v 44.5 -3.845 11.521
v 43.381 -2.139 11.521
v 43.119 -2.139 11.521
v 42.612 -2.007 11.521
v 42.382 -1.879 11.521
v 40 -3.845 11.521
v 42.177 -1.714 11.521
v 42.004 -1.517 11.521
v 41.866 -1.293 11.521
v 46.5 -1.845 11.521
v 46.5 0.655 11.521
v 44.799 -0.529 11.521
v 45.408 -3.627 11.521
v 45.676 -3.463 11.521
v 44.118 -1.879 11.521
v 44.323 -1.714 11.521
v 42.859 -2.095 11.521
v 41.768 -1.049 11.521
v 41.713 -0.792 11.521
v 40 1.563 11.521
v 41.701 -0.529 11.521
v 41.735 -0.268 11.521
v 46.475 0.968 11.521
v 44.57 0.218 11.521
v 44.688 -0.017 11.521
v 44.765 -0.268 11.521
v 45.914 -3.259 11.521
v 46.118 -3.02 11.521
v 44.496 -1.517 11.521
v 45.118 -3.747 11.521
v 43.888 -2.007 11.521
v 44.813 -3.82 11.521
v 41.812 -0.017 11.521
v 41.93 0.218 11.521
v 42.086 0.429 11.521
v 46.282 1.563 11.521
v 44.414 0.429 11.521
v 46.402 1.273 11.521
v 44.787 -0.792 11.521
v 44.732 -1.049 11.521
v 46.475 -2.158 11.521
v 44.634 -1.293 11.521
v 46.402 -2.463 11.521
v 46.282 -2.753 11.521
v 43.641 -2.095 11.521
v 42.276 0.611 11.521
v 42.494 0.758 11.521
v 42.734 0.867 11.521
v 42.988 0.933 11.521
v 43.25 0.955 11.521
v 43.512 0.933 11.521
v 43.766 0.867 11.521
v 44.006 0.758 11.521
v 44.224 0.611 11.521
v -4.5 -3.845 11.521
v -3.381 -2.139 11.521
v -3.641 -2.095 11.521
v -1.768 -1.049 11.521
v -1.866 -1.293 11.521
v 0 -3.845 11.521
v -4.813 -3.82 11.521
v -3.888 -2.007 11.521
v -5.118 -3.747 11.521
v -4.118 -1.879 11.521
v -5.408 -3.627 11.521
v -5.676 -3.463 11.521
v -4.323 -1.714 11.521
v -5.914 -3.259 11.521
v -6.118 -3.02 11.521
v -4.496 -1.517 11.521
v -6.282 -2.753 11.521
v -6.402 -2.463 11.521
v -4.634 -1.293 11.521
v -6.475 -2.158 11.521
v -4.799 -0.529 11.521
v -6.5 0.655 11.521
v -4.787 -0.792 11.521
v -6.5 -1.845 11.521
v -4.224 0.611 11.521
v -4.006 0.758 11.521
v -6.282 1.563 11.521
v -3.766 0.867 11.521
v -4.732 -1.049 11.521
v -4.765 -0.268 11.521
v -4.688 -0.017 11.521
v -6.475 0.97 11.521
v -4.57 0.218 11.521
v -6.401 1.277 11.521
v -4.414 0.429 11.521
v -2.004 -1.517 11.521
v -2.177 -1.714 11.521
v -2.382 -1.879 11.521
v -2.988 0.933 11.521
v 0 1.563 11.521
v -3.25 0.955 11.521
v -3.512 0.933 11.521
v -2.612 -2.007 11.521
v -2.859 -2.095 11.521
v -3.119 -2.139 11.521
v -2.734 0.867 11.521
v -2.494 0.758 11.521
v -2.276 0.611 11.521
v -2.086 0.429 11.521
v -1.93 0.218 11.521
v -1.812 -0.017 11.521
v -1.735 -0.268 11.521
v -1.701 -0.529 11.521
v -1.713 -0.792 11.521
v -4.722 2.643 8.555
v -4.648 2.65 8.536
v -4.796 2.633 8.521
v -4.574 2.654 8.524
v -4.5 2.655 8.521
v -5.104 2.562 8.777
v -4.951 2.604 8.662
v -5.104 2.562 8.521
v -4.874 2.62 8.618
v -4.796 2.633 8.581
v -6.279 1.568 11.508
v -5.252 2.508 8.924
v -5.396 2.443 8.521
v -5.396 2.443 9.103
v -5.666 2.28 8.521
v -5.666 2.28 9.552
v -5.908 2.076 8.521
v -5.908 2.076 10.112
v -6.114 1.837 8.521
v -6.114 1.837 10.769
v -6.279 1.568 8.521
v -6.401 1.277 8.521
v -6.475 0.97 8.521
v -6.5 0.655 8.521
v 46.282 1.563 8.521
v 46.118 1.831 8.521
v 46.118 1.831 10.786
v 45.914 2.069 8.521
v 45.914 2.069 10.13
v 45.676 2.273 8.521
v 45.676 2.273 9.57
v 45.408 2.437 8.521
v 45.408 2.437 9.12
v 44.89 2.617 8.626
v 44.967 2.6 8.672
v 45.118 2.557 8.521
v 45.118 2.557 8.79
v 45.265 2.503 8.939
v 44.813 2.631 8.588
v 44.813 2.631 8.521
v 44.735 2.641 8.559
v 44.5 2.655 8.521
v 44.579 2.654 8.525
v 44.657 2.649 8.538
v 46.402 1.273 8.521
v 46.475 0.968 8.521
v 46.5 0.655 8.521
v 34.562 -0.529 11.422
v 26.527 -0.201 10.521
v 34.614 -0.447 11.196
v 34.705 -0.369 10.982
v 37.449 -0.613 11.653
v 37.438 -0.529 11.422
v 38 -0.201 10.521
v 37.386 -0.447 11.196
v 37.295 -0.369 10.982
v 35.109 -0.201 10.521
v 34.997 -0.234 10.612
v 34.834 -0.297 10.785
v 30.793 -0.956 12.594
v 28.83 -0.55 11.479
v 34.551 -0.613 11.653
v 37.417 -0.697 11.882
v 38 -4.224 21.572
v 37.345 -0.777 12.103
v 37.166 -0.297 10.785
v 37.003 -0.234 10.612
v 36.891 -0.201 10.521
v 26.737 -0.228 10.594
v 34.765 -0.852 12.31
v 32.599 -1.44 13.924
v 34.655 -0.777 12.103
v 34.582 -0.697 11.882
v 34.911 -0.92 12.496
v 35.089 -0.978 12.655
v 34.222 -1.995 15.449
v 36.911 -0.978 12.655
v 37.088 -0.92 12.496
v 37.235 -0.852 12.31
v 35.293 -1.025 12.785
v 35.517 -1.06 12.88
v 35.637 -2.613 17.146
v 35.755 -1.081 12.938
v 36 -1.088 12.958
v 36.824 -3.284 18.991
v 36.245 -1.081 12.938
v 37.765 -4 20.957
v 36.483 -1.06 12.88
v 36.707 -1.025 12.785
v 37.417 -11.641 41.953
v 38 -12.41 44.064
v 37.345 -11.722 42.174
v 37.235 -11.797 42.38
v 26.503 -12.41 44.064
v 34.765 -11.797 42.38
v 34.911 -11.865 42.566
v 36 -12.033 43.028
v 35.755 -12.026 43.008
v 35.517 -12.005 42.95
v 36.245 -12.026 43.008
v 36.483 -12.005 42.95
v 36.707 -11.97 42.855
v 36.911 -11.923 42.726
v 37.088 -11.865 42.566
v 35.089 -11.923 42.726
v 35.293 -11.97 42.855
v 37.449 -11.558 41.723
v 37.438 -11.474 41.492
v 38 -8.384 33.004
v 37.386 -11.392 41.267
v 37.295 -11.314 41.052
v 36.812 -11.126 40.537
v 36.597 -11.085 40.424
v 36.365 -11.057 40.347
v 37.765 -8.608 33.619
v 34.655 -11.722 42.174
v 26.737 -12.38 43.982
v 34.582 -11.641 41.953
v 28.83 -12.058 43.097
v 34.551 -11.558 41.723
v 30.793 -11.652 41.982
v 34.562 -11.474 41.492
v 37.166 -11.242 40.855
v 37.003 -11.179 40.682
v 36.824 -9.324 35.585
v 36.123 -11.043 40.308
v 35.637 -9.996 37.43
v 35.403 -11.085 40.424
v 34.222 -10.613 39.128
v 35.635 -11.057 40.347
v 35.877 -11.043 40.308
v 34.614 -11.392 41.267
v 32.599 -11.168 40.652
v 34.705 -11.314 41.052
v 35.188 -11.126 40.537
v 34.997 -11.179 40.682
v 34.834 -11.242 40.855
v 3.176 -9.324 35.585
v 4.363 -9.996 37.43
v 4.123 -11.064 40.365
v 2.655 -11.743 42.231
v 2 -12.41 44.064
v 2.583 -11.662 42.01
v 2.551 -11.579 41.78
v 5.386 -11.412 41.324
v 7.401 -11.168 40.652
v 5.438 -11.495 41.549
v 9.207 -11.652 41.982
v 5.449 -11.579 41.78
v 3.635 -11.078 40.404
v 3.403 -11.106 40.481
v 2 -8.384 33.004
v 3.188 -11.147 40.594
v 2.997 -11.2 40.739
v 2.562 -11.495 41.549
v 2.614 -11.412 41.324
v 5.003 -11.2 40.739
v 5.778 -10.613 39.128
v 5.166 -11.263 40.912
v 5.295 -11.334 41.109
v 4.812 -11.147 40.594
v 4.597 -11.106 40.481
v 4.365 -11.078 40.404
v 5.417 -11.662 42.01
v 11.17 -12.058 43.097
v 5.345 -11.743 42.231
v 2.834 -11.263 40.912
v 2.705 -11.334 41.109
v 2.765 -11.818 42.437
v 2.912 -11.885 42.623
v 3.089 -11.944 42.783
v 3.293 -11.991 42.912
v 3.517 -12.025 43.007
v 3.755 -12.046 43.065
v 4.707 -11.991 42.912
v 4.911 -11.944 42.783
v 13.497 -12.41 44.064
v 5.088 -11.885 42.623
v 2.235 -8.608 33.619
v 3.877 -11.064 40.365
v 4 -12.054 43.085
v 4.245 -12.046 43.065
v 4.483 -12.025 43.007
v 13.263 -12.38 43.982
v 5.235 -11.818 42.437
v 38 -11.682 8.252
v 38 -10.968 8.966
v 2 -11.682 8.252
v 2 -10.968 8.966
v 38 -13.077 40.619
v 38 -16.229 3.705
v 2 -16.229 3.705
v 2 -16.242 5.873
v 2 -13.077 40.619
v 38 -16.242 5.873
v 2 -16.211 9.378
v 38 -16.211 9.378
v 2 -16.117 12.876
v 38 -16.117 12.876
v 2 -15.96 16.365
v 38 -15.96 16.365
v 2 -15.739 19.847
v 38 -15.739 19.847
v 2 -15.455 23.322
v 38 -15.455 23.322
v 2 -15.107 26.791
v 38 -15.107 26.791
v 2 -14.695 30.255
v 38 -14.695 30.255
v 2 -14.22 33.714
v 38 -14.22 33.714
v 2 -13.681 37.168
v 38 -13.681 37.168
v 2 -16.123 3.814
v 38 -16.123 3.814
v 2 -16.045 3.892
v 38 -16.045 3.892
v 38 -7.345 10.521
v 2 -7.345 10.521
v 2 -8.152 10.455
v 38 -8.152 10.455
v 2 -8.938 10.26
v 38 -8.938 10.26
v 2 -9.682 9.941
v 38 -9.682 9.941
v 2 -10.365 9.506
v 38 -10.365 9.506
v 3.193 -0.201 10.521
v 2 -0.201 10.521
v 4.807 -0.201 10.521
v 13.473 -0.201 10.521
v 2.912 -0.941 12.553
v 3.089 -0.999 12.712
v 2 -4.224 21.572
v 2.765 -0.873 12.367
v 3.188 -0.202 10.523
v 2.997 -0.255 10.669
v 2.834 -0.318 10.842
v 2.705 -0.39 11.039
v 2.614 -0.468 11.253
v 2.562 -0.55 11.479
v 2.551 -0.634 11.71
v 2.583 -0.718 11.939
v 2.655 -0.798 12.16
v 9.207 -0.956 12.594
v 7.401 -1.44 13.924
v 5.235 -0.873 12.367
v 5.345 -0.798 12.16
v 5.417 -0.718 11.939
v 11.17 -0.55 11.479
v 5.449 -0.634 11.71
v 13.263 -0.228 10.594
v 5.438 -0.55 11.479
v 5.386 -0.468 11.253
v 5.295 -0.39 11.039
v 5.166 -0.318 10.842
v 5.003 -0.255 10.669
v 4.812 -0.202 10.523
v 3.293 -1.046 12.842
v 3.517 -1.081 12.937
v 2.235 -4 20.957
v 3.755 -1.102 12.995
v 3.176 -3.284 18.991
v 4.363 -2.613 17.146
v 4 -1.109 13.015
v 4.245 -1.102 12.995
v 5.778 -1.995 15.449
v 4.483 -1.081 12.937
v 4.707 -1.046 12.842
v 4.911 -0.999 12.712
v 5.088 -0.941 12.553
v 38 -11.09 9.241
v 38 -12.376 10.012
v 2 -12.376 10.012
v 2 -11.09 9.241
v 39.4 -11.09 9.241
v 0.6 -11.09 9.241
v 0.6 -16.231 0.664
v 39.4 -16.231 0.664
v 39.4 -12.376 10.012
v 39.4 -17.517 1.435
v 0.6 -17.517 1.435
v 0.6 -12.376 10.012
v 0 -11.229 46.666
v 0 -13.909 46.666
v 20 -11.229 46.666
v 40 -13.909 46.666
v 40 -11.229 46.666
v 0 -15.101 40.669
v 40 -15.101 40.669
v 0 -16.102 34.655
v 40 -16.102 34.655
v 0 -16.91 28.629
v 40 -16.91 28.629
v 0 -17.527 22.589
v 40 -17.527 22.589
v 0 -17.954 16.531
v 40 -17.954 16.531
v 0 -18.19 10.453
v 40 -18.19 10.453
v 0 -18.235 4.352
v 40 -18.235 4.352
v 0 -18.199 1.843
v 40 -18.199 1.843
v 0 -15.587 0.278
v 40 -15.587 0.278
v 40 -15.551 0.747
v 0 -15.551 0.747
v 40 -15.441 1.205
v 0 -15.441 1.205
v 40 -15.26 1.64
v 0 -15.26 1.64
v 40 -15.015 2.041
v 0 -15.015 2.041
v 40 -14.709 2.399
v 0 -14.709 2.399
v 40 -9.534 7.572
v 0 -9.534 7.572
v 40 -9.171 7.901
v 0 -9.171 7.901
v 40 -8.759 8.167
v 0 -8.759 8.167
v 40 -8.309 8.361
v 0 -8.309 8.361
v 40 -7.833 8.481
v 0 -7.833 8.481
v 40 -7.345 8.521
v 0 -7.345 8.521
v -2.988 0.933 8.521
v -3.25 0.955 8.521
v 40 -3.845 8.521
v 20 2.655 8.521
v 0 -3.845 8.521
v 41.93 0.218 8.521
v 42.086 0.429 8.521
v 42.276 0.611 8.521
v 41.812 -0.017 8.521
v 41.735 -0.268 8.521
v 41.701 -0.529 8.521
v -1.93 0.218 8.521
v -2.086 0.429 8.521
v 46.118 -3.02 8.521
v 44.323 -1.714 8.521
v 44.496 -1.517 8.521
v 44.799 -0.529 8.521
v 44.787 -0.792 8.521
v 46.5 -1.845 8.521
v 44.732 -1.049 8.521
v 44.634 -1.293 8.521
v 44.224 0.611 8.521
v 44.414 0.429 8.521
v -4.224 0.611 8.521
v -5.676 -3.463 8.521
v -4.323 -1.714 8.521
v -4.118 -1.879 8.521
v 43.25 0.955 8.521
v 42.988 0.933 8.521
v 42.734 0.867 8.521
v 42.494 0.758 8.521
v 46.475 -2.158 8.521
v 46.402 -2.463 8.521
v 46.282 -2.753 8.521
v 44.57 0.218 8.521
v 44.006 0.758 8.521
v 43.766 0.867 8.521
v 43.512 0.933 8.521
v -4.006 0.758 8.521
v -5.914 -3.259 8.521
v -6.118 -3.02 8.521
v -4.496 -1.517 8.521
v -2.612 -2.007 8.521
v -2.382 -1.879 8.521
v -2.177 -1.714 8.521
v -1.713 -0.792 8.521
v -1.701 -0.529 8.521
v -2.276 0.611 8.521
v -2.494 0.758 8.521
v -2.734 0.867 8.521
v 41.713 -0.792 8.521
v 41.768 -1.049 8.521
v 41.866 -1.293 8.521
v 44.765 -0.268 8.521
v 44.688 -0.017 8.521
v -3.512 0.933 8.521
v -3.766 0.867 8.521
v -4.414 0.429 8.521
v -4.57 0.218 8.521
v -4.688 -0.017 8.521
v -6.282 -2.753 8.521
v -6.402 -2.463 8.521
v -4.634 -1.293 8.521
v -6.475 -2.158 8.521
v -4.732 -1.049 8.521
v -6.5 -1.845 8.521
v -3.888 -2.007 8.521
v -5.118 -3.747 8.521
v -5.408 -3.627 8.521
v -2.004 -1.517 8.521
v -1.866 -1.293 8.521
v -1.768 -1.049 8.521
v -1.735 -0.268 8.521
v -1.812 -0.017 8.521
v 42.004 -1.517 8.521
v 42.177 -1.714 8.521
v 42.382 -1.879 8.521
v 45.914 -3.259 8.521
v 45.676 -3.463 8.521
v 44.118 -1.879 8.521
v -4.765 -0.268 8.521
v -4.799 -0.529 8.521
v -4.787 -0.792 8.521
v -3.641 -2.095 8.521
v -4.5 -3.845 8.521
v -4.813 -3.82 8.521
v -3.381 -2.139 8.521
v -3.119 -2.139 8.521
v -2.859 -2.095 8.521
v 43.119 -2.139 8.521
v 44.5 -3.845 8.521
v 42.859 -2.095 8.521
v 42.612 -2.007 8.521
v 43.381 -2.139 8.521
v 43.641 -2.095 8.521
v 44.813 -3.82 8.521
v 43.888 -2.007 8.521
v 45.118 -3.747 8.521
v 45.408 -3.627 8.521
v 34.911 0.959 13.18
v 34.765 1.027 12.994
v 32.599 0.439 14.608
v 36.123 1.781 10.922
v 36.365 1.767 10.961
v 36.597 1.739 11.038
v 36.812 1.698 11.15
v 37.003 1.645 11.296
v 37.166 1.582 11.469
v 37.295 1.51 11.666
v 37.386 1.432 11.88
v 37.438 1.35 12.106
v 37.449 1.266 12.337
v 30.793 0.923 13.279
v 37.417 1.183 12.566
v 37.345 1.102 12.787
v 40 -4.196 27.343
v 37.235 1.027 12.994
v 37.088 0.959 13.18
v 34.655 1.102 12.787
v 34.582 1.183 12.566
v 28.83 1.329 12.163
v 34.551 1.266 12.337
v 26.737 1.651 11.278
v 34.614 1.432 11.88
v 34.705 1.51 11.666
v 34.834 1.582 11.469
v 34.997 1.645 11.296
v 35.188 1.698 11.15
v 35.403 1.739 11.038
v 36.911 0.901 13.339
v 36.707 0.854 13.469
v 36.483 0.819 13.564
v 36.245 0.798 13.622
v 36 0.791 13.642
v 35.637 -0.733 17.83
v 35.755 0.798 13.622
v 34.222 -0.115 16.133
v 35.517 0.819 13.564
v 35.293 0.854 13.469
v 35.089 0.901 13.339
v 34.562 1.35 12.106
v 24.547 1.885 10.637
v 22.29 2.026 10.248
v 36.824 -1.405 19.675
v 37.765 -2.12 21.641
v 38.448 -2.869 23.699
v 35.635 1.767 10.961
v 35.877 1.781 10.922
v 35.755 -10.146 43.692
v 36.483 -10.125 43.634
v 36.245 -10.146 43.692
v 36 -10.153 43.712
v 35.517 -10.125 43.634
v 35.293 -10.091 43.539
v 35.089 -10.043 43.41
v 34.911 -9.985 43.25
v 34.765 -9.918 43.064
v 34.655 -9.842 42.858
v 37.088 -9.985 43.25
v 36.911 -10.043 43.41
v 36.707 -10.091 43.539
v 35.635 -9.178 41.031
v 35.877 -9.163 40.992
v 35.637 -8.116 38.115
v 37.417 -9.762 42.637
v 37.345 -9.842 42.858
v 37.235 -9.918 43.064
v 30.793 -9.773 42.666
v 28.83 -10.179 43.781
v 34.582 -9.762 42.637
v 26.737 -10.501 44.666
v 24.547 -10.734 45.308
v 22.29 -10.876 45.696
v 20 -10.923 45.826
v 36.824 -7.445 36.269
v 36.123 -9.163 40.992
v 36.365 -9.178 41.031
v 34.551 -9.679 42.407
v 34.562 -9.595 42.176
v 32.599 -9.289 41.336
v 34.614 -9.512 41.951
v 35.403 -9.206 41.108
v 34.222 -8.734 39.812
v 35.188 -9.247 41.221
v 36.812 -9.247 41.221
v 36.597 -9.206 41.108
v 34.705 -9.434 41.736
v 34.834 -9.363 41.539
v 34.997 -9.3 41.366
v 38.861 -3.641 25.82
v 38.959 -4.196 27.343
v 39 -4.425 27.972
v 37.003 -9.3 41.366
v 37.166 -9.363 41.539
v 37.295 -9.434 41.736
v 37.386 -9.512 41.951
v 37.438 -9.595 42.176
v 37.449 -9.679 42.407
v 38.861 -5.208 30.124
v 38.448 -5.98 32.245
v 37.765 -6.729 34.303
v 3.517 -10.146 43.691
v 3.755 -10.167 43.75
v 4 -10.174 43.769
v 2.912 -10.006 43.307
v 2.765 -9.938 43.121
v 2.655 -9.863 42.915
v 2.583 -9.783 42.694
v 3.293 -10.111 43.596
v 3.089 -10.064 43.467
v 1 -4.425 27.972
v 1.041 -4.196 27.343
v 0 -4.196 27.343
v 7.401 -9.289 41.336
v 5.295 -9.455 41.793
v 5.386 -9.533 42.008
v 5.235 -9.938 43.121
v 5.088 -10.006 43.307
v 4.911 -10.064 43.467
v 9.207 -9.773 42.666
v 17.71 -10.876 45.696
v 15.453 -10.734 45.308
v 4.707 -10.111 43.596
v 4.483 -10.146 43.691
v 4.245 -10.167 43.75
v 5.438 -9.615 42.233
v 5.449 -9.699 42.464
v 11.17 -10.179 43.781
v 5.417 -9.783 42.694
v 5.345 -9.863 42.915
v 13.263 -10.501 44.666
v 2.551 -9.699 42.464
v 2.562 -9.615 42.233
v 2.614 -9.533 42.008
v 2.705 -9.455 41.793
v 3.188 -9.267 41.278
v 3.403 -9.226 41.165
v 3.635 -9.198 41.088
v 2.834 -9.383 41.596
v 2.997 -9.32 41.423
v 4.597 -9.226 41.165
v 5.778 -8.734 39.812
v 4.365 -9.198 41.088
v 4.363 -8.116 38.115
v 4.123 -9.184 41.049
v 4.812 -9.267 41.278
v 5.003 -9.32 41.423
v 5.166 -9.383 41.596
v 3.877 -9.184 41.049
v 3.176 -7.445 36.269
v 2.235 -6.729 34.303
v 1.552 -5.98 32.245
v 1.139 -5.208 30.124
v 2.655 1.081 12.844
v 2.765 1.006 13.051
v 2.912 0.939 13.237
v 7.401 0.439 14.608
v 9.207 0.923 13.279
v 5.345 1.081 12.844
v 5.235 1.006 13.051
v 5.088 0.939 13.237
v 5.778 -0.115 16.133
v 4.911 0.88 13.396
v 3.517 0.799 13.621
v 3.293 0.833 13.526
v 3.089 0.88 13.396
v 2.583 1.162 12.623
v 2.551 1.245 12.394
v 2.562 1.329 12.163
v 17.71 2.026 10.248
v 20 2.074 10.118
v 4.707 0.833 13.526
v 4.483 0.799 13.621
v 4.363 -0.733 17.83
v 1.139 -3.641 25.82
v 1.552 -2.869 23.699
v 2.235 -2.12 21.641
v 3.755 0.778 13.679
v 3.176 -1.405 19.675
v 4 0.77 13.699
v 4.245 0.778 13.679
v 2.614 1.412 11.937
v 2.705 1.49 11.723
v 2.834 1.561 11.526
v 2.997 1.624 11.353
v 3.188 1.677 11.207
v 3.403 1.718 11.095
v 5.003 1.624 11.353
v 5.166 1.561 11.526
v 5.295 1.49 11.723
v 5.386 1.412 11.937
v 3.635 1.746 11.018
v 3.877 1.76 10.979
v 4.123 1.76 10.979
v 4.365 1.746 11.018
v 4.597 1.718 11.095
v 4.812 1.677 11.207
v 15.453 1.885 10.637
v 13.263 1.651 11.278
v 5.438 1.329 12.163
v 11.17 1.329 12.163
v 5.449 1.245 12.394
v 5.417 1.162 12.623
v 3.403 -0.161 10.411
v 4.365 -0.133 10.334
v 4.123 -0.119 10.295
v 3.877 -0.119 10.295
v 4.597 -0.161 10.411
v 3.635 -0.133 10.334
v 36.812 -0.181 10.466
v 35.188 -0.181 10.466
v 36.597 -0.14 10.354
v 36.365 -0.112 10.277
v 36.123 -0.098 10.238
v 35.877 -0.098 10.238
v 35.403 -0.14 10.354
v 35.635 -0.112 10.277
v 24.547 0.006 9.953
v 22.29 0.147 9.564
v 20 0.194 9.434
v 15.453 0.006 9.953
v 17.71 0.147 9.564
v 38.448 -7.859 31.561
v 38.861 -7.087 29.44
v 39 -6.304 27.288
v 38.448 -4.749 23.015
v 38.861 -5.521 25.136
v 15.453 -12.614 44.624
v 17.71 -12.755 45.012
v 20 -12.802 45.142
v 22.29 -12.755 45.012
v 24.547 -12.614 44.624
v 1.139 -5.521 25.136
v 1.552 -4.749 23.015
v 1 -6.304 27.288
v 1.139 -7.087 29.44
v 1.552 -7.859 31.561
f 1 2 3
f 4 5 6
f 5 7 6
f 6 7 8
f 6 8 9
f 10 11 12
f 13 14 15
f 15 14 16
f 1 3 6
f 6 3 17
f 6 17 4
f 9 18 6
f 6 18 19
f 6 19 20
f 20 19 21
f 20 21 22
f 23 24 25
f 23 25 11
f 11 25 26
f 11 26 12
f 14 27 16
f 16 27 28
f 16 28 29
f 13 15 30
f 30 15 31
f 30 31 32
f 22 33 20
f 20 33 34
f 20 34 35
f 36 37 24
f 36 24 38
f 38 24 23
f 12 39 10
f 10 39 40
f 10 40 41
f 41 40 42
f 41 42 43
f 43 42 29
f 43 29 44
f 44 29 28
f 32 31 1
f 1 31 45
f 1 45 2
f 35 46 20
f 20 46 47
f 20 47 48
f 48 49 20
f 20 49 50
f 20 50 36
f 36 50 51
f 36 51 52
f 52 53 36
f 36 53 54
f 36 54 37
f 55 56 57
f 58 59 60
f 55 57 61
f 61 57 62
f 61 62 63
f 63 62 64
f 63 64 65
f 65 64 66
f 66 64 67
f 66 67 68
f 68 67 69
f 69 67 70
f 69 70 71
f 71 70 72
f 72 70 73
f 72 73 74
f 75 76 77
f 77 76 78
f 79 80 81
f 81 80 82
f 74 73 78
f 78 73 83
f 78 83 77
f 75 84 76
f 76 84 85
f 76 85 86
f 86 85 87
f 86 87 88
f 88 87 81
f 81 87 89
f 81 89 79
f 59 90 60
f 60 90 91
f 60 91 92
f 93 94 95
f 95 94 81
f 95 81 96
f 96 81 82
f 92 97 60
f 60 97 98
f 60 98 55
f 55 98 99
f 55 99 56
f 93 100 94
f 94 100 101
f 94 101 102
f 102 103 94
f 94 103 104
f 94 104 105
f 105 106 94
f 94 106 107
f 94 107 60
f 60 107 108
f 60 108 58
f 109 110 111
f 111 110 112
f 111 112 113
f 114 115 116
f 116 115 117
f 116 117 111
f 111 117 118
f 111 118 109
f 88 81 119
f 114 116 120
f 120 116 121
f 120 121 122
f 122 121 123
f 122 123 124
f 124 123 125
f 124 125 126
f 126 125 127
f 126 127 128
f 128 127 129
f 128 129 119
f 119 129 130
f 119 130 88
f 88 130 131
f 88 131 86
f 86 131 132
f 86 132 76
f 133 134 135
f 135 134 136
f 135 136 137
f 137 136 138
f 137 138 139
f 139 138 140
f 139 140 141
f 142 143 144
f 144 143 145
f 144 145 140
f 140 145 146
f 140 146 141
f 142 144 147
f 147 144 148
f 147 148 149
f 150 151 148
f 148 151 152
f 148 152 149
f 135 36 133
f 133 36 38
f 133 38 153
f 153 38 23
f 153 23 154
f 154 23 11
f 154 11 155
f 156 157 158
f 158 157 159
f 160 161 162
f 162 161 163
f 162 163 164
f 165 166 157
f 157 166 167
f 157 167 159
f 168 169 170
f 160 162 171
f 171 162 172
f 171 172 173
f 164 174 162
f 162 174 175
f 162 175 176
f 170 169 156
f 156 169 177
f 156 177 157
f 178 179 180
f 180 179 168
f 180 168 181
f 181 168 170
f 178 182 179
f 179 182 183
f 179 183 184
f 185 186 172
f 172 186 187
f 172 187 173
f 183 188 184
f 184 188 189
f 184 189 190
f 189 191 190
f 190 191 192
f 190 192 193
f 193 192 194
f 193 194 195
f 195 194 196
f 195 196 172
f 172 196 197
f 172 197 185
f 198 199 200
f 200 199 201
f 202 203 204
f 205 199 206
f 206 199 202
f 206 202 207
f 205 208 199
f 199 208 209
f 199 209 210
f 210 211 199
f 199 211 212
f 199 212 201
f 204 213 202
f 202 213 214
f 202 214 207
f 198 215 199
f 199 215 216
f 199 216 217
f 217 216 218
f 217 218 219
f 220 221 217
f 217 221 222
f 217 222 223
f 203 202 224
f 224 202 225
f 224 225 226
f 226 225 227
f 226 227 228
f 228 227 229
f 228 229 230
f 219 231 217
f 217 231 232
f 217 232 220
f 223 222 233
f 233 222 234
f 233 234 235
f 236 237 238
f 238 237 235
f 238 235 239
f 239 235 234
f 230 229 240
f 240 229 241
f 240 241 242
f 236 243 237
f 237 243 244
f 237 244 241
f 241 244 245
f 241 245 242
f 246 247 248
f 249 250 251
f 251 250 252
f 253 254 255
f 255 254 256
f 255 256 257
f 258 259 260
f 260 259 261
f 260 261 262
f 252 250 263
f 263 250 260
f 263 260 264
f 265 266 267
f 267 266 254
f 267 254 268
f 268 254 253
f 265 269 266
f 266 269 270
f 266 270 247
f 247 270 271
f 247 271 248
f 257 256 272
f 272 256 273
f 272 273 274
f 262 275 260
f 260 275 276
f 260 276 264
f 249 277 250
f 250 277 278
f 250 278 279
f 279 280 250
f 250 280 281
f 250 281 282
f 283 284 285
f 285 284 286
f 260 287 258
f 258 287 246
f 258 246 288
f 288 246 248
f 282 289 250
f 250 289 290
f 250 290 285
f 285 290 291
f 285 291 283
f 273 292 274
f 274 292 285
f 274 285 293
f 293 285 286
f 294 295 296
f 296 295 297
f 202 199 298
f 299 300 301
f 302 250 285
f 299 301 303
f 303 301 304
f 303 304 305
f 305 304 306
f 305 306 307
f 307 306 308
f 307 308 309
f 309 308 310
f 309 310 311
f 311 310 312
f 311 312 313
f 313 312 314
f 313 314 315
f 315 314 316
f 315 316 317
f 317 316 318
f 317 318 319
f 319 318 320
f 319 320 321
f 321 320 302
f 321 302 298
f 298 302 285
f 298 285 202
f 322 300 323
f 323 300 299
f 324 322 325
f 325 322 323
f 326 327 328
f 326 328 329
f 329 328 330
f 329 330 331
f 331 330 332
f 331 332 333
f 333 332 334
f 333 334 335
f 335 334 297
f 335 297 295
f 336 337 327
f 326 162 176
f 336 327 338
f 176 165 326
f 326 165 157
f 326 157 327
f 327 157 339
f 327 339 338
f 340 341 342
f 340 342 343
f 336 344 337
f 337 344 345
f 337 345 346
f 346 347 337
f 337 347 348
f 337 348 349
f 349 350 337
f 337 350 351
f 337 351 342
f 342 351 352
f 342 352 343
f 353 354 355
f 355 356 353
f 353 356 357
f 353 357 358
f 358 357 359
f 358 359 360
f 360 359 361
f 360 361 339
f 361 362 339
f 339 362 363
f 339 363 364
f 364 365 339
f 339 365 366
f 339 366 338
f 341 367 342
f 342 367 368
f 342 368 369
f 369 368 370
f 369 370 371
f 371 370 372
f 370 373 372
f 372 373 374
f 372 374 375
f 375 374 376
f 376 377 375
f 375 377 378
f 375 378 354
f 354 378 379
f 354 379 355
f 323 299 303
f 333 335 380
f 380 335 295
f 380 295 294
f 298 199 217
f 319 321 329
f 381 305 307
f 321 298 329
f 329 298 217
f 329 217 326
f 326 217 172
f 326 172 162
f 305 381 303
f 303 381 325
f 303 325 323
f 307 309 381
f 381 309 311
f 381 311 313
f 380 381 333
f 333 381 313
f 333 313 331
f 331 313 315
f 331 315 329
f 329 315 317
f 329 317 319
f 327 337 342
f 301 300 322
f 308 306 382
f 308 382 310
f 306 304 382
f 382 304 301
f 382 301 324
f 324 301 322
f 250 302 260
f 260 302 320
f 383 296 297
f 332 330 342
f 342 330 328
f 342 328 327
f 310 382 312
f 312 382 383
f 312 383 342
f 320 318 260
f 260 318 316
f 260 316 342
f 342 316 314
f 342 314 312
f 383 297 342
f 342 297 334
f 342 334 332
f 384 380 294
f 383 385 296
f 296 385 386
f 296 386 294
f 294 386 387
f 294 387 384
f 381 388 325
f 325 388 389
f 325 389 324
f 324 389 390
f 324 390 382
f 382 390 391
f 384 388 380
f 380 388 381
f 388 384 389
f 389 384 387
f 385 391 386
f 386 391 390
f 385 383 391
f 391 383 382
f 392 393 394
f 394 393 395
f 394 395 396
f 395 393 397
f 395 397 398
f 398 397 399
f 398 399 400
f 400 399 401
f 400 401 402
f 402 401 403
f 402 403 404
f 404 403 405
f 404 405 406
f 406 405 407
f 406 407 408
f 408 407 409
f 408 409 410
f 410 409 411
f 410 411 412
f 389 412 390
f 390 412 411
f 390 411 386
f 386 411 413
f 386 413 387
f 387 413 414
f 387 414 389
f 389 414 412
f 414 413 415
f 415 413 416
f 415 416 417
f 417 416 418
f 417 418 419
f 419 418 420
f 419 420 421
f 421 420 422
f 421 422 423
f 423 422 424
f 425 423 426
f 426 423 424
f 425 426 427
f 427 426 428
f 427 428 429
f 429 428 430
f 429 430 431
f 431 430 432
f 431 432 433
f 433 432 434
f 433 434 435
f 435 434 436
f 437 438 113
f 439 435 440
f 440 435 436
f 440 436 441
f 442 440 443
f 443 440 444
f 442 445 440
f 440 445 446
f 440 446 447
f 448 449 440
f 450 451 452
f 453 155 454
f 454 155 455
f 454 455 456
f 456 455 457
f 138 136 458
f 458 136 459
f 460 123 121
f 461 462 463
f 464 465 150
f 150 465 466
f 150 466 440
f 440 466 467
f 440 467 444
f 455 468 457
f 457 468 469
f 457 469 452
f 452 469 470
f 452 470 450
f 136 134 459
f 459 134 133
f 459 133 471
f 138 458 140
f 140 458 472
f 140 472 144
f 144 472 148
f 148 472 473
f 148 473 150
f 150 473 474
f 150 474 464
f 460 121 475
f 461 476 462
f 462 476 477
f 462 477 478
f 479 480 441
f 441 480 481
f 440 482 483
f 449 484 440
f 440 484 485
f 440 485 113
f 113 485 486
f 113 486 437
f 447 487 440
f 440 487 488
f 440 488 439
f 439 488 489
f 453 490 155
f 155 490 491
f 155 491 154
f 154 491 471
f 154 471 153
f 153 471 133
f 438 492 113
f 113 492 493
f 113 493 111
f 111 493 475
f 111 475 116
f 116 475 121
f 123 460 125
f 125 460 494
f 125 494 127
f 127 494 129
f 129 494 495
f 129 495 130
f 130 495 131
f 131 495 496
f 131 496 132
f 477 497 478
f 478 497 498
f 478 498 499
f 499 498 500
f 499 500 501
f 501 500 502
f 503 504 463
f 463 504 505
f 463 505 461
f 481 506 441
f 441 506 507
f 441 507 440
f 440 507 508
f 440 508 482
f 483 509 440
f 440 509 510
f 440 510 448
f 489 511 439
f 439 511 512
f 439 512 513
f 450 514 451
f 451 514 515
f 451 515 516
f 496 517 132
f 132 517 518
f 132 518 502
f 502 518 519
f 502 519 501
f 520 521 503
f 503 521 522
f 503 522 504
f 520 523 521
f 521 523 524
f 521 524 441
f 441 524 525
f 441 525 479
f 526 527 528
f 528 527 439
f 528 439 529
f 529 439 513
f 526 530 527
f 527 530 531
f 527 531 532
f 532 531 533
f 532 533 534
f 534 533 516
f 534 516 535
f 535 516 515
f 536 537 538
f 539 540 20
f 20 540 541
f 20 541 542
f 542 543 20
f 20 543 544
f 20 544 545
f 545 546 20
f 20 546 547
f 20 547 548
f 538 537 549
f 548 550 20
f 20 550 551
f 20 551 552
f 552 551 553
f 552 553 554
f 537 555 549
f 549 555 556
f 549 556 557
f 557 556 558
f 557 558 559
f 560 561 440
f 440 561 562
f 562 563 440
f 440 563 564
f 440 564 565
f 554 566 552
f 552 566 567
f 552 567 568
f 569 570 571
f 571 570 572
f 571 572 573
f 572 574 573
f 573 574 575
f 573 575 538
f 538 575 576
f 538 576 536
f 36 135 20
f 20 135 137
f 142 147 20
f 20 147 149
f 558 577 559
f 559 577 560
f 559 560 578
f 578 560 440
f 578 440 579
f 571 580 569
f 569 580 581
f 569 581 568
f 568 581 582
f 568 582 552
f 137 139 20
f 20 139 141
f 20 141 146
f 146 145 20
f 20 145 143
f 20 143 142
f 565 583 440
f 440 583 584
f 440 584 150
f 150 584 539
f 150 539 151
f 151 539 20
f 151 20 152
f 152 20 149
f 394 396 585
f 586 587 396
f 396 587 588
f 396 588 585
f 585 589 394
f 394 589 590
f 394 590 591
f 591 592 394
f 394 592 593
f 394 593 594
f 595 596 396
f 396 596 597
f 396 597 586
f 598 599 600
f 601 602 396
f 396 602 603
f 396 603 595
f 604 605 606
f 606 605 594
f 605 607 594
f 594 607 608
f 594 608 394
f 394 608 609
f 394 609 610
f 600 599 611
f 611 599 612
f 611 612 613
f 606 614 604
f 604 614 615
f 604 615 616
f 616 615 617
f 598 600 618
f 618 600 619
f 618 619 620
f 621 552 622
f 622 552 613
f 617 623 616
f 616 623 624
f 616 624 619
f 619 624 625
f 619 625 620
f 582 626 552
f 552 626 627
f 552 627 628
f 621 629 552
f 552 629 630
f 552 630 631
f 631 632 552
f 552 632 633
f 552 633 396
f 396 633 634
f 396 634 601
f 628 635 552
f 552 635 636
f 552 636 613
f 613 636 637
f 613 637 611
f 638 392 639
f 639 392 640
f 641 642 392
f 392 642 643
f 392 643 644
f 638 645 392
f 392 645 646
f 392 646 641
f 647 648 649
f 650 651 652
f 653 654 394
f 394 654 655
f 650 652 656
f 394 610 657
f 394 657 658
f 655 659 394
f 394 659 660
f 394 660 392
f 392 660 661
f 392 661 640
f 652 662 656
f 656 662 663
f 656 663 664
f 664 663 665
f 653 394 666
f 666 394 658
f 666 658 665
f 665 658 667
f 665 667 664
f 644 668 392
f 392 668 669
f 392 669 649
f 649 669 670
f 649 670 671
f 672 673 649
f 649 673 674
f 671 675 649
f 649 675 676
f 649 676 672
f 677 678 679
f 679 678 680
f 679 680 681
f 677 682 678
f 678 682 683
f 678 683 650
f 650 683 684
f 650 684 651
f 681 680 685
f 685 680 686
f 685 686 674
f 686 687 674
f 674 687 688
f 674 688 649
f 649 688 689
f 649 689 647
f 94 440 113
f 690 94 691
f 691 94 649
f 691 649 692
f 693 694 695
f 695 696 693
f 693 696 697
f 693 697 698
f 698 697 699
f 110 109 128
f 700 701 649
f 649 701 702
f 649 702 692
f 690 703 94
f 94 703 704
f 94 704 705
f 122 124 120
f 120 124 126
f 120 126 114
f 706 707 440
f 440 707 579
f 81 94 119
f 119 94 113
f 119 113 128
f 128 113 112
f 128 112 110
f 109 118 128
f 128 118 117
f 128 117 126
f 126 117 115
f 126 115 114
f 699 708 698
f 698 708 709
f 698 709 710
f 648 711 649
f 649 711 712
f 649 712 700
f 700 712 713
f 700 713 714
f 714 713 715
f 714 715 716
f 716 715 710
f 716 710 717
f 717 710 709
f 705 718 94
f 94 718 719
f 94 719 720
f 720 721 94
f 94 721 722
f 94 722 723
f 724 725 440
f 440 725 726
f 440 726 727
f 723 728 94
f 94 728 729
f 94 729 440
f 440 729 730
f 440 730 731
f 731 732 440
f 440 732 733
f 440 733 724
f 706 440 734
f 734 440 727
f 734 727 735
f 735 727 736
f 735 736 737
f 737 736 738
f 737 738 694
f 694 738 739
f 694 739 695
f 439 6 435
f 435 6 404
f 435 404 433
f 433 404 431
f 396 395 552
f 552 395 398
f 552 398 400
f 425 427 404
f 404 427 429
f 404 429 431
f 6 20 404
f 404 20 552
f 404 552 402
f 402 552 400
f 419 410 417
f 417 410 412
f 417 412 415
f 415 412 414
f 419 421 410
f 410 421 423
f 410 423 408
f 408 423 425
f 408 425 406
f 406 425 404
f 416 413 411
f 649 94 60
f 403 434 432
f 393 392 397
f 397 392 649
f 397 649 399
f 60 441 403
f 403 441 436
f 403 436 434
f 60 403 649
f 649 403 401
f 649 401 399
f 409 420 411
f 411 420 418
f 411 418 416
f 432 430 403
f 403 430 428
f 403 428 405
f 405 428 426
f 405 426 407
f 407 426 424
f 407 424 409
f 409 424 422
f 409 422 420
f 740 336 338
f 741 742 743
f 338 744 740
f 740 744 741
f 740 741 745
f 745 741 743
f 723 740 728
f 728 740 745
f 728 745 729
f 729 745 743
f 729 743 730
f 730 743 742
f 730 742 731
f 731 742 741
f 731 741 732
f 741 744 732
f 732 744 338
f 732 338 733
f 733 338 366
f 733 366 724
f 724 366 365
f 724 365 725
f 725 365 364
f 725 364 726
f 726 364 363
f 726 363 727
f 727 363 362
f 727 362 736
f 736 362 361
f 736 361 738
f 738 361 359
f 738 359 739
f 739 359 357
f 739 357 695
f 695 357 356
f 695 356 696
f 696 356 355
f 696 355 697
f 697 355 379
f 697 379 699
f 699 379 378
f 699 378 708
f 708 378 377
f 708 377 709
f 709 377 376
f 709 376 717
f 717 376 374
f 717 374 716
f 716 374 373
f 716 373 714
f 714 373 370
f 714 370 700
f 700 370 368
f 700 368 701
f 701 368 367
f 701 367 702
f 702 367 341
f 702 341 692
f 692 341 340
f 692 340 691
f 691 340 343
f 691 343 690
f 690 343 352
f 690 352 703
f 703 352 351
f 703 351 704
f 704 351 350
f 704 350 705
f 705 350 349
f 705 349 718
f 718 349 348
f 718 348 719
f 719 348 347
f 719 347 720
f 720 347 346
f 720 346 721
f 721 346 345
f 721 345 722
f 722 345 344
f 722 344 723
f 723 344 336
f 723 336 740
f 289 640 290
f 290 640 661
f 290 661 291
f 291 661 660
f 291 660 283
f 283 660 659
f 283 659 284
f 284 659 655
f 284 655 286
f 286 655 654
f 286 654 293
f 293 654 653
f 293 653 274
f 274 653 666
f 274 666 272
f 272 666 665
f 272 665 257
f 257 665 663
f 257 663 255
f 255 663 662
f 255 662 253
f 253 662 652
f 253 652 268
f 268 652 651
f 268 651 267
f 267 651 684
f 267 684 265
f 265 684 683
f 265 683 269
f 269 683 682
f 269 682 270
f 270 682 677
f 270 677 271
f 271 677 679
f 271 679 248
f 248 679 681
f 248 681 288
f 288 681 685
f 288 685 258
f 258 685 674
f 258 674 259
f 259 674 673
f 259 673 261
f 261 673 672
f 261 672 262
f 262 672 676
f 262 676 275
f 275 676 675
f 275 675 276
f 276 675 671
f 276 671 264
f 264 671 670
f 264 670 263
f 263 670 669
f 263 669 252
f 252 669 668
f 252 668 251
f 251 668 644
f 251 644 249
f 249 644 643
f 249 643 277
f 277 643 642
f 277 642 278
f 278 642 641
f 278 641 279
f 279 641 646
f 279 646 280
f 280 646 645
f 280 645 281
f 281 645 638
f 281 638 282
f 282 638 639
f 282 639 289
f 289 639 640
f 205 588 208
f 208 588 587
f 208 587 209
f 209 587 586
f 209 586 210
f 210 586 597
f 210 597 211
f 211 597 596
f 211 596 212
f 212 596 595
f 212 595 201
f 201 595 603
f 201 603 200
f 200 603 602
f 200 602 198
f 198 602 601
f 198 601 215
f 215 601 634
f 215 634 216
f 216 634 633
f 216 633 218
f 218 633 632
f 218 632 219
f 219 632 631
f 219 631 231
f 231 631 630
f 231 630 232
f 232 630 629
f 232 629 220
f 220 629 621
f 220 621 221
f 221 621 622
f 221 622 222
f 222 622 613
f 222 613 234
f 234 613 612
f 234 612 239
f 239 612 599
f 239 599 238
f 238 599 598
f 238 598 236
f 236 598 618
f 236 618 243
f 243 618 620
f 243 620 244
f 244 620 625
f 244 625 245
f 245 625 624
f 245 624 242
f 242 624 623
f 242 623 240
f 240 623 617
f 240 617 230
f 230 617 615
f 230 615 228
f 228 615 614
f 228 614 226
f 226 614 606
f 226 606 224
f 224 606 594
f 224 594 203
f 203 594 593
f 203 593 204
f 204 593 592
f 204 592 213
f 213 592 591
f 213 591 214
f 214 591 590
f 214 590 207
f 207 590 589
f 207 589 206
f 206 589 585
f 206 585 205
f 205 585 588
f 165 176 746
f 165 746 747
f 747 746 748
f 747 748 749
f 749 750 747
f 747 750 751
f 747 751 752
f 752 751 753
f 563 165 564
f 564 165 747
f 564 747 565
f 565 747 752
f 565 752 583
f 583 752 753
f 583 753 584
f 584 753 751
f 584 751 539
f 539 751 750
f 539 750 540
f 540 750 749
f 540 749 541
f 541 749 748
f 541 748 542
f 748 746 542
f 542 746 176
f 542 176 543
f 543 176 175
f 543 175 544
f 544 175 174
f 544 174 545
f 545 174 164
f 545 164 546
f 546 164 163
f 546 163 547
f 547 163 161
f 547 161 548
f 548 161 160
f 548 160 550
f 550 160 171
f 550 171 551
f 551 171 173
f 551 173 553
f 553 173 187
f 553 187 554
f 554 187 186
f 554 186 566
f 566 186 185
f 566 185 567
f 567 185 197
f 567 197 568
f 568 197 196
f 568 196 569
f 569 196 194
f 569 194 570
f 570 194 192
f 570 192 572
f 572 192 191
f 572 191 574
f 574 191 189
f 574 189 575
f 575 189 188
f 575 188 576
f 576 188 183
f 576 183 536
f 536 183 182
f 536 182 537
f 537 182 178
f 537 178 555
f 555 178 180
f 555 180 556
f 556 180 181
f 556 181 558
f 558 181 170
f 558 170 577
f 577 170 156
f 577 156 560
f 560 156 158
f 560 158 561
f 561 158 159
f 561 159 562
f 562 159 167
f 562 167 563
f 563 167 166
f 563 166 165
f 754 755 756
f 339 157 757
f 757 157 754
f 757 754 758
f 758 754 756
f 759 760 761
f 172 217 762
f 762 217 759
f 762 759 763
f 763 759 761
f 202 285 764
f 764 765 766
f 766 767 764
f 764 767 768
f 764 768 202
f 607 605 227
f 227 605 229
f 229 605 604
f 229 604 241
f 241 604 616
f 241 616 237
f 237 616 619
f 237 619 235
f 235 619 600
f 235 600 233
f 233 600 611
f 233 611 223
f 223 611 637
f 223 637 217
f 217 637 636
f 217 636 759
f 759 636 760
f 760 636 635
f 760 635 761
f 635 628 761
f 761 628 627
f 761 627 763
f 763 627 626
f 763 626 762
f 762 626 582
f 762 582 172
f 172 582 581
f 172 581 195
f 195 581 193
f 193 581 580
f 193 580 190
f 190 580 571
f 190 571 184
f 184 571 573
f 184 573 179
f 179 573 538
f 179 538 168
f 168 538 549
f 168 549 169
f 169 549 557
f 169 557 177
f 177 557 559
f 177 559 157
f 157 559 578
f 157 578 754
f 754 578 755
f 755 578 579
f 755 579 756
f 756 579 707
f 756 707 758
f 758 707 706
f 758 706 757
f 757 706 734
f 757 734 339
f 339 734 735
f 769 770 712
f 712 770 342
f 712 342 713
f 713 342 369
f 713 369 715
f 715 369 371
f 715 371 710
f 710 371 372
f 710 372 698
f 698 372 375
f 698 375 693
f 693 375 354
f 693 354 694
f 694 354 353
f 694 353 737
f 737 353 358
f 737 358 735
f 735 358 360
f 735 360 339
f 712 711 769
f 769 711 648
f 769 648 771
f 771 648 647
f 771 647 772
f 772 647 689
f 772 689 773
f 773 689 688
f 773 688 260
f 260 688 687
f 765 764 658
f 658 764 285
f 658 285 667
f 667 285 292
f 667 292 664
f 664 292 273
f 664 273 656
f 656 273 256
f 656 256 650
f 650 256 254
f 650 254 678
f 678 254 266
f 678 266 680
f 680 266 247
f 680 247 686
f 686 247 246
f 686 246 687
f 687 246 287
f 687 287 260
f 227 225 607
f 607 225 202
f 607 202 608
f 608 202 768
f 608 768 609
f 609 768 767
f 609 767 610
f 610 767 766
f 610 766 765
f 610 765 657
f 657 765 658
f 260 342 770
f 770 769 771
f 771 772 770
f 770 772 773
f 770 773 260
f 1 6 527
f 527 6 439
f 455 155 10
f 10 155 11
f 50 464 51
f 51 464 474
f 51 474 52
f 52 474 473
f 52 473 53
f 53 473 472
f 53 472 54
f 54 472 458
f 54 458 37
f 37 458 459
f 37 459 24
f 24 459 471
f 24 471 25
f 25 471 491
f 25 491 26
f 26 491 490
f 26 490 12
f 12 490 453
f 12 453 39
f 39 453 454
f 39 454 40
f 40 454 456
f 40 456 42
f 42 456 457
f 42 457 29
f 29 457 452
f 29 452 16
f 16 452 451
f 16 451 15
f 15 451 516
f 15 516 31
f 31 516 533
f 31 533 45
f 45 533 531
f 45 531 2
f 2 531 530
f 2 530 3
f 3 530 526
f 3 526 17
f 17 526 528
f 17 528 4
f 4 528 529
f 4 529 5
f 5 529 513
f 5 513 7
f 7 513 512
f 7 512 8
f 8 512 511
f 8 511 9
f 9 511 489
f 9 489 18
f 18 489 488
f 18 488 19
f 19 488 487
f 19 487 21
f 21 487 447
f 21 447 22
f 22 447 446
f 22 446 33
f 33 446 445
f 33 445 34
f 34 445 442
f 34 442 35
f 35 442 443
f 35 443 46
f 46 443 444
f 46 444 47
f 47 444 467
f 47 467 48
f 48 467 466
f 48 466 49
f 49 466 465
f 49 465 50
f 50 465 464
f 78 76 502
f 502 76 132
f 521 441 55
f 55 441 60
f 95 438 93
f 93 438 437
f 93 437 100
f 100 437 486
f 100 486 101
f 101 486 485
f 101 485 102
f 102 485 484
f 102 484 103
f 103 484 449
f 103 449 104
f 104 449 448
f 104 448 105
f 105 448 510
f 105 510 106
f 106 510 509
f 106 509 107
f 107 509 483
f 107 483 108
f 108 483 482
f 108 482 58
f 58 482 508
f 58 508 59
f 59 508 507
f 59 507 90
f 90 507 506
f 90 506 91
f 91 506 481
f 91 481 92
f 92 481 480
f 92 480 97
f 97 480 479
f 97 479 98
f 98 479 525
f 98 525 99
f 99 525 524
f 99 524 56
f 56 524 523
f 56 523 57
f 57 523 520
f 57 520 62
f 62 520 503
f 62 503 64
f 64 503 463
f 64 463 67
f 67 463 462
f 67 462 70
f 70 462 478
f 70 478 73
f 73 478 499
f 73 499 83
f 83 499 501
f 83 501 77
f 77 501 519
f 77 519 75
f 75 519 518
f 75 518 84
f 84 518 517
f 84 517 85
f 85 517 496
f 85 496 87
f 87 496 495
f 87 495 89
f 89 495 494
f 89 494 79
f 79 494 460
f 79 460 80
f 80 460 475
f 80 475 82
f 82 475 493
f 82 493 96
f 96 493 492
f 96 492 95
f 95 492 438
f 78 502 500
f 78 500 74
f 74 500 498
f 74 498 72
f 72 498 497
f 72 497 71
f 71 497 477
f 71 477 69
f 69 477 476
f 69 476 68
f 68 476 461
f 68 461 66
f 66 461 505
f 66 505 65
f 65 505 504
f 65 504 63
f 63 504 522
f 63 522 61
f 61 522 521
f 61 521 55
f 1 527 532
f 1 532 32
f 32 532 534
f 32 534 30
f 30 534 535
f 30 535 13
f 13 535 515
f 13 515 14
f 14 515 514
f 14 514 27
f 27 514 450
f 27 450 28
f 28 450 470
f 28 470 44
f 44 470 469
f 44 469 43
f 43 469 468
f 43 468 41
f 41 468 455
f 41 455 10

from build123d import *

# Parameters (mm, degrees)
Y_KSEKLIK_EKSTR_ZYON1_DEPTH = 40
BO_ALTMA1_START             = 2
BO_ALTMA1_DEPTH             = 36
IZIM4_W                     = 38.8
IZIM4_H                     = 1.5
KES_EKSTR_ZYON1_DEPTH       = 10
IZIM5_R                     = 1.45
IZIM5_R_2                   = 19
KES_EKSTR_ZYON2_DEPTH       = 2
IZIM6_W                     = 6.5
IZIM6_H                     = 6.5
IZIM6_R                     = 1.55
Y_KSEKLIK_EKSTR_ZYON2_DEPTH = 3
RADYUS1_R                   = 2
KES_EKSTR_ZYON3_DEPTH       = 10
KES_EKSTR_ZYON3_DEPTH_BACK  = 55


# Read off the part's stored shape, not the designer's step: İç Boşaltma1
with BuildPart() as part:
    # Çizim2 → Yükseklik-Ekstrüzyon1 (new body)
    with BuildSketch(Plane(origin=(0, 0, 0), x_dir=(0, 0, -1), z_dir=(1, 0, 0))):
        with BuildLine():
            Line((-8.520601237, 2.655177464), (-8.520601237, -7.344822536))
            ThreePointArc((-8.520601237, -7.344822536), (-8.2732007, -8.537800405), (-7.571803773, -9.53401603))
            Line((-7.571803773, -9.53401603), (-2.399280893, -14.708783566))
            ThreePointArc((-2.399280893, -14.708783566), (-1.426311448, -15.35897725), (-0.27796055, -15.587463223))
            Line((-0.27796055, -15.587463223), (-1.843021011, -18.19863418))
            add(Edge.make_bspline(
                [(-46.665907249, -13.909076506), (-24.516902354, -18.673937552), (-1.843021011, -18.19863418)],
                knots=[0, 0, 0, 1, 1, 1], degree=2))
            Line((-46.665907249, -13.909076506), (-46.665907249, -11.228578501))
            Line((-46.665907249, -11.228578501), (-8.520601237, 2.655177464))
        make_face()
    extrude(amount=Y_KSEKLIK_EKSTR_ZYON1_DEPTH)

    # İç Boşaltma1 outline → İç Boşaltma1 (cut)
    with BuildSketch(Plane.YZ.offset(BO_ALTMA1_START)):
        with BuildLine():
            Line((-0.201118549, 10.520601237), (-12.409947295, 44.064082645))
            add(Edge.make_bspline(
                [(-12.409947295, 44.064082645), (-12.786167702, 42.211926114), (-13.142061282, 40.357797151), (-13.477631026, 38.501688751), (-13.792879631, 36.643593797), (-14.087809503, 34.783505061), (-14.362422751, 32.921415207), (-14.616721192, 31.057316786), (-14.850706351, 29.19120224), (-15.064379456, 27.323063899), (-15.257741445, 25.452893983), (-15.526587368, 22.544304232), (-15.616158228, 21.507298941), (-15.699505521, 20.469667421), (-15.77662923, 19.431408364), (-15.847529338, 18.39252046), (-15.912205827, 17.353002403), (-15.970658681, 16.312852883), (-16.02288788, 15.272070593), (-16.06889341, 14.230654225), (-16.108675251, 13.18860247), (-16.159012454, 11.624569796), (-16.174235562, 11.103066399), (-16.187902686, 10.581403672), (-16.200013803, 10.059581454), (-16.210568888, 9.537599587), (-16.219567918, 9.01545791), (-16.227010868, 8.493156266), (-16.232897715, 7.970694494), (-16.237228434, 7.448072435), (-16.240003003, 6.92528993), (-16.241792402, 6.157267265), (-16.242021612, 5.912152435), (-16.241909023, 5.667002314), (-16.241454632, 5.421816888), (-16.240658436, 5.176596139), (-16.23952043, 4.931340051), (-16.238040611, 4.68604861), (-16.236218976, 4.440721798), (-16.234055521, 4.1953596), (-16.231550242, 3.949961999), (-16.228703137, 3.704528981)],
                knots=[0.04971795, 0.04971795, 0.04971795, 0.04971795, 0.04971795, 0.04971795, 0.04971795, 0.04971795, 0.04971795, 0.04971795, 0.04971795, 0.04971795, 0.513850496, 0.513850496, 0.513850496, 0.513850496, 0.513850496, 0.513850496, 0.513850496, 0.513850496, 0.513850496, 0.513850496, 0.770775744, 0.770775744, 0.770775744, 0.770775744, 0.770775744, 0.770775744, 0.770775744, 0.770775744, 0.770775744, 0.770775744, 0.899238368, 0.899238368, 0.899238368, 0.899238368, 0.899238368, 0.899238368, 0.899238368, 0.899238368, 0.899238368, 0.899238368, 0.959442934, 0.959442934, 0.959442934, 0.959442934, 0.959442934, 0.959442934, 0.959442934, 0.959442934, 0.959442934, 0.959442934, 0.959442934, 0.959442934], degree=11))
            ThreePointArc((-16.228703137, 3.704528981), (-16.17611264, 3.759568607), (-16.122690278, 3.81380118))
            Line((-16.122690278, 3.81380118), (-10.968143105, 8.966112527))
            ThreePointArc((-10.968143105, 8.966112527), (-9.316172777, 10.115574384), (-7.344822536, 10.520601237))
            Line((-7.344822536, 10.520601237), (-0.201118549, 10.520601237))
        make_face()
    extrude(amount=BO_ALTMA1_DEPTH, mode=Mode.SUBTRACT)

    # Çizim4 → Kes-Ekstrüzyon1 (cut)
    with BuildSketch(Plane(origin=(0, -3.997164066, -6.668930038), x_dir=(-1, 0, 0), z_dir=(0, -0.5140990756107078, -0.8577308088533464))):
        with Locations((-20, -15.0127467)):
            Rectangle(IZIM4_W, IZIM4_H)
    extrude(amount=-KES_EKSTR_ZYON1_DEPTH, mode=Mode.SUBTRACT)

    # Çizim5 → Kes-Ekstrüzyon2 (cut)
    with BuildSketch(Plane(origin=(0, 5.083049154, 1.850078591), x_dir=(1, 0, 0), z_dir=(0, 0.9396926207859106, 0.34202014332566266))):
        with Locations(Location((4, -11.159288927, 0), (0, 0, 270))):
            Circle(IZIM5_R)
        with Locations(Location((35.999942492, -11.09862193, 0), (0, 0, 270))):
            Circle(IZIM5_R)
        with Locations(Location((4, -43.159288927, 0), (0, 0, 270))):
            Circle(IZIM5_R)
        with Locations(Location((35.999942492, -43.09862193, 0), (0, 0, 270))):
            Circle(IZIM5_R)
        with Locations(Location((20, -27.798590964, 0), (0, 0, 270))):
            Circle(IZIM5_R_2)
    extrude(amount=-KES_EKSTR_ZYON2_DEPTH, mode=Mode.SUBTRACT)

    # Çizim6 → Yükseklik-Ekstrüzyon2 (add)
    # profile 1 of 2: a face of its own
    with BuildSketch(Plane(origin=(0, 0, 8.520601237), x_dir=(-1, 0, 0), z_dir=(0, 0, -1))):
        with Locations((-43.25, -0.594822536)):
            Rectangle(IZIM6_W, IZIM6_H)
        with Locations(Location((-43.25, -0.594822536, 0), (0, 0, 90))):
            Circle(IZIM6_R, mode=Mode.SUBTRACT)
    # profile 2 of 2: a face of its own
    with BuildSketch(Plane(origin=(0, 0, 8.520601237), x_dir=(-1, 0, 0), z_dir=(0, 0, -1))):
        with Locations((3.25, -0.594822536)):
            Rectangle(IZIM6_W, IZIM6_H)
        with Locations(Location((3.25, -0.594822536, 0), (0, 0, 90))):
            Circle(IZIM6_R, mode=Mode.SUBTRACT)
    extrude(amount=-Y_KSEKLIK_EKSTR_ZYON2_DEPTH)

    # Radyus1
    radyus1_edges = [part.edges().sort_by_distance(p)[0] for p in [
        (-6.5, -3.844822536, 10.020601237),
        (-6.5, 2.655177464, 10.020601237),
        (46.5, -3.844822536, 10.020601237),
        (46.5, 2.655177464, 10.020601237),
    ]]
    fillet(radyus1_edges, radius=RADYUS1_R)

    # Çizim7 → Kes-Ekstrüzyon3 (cut, two sides: drawn at the far end of the back side and taken through both)
    with BuildSketch(Plane.ZY.offset(-KES_EKSTR_ZYON3_DEPTH_BACK)):
        Polygon((11.520601237, 1.563266761), (8.520601237, 2.655177464), (11.520601237, 2.655177464), align=None)
    extrude(amount=KES_EKSTR_ZYON3_DEPTH + KES_EKSTR_ZYON3_DEPTH_BACK, mode=Mode.SUBTRACT)


solid = part.part
